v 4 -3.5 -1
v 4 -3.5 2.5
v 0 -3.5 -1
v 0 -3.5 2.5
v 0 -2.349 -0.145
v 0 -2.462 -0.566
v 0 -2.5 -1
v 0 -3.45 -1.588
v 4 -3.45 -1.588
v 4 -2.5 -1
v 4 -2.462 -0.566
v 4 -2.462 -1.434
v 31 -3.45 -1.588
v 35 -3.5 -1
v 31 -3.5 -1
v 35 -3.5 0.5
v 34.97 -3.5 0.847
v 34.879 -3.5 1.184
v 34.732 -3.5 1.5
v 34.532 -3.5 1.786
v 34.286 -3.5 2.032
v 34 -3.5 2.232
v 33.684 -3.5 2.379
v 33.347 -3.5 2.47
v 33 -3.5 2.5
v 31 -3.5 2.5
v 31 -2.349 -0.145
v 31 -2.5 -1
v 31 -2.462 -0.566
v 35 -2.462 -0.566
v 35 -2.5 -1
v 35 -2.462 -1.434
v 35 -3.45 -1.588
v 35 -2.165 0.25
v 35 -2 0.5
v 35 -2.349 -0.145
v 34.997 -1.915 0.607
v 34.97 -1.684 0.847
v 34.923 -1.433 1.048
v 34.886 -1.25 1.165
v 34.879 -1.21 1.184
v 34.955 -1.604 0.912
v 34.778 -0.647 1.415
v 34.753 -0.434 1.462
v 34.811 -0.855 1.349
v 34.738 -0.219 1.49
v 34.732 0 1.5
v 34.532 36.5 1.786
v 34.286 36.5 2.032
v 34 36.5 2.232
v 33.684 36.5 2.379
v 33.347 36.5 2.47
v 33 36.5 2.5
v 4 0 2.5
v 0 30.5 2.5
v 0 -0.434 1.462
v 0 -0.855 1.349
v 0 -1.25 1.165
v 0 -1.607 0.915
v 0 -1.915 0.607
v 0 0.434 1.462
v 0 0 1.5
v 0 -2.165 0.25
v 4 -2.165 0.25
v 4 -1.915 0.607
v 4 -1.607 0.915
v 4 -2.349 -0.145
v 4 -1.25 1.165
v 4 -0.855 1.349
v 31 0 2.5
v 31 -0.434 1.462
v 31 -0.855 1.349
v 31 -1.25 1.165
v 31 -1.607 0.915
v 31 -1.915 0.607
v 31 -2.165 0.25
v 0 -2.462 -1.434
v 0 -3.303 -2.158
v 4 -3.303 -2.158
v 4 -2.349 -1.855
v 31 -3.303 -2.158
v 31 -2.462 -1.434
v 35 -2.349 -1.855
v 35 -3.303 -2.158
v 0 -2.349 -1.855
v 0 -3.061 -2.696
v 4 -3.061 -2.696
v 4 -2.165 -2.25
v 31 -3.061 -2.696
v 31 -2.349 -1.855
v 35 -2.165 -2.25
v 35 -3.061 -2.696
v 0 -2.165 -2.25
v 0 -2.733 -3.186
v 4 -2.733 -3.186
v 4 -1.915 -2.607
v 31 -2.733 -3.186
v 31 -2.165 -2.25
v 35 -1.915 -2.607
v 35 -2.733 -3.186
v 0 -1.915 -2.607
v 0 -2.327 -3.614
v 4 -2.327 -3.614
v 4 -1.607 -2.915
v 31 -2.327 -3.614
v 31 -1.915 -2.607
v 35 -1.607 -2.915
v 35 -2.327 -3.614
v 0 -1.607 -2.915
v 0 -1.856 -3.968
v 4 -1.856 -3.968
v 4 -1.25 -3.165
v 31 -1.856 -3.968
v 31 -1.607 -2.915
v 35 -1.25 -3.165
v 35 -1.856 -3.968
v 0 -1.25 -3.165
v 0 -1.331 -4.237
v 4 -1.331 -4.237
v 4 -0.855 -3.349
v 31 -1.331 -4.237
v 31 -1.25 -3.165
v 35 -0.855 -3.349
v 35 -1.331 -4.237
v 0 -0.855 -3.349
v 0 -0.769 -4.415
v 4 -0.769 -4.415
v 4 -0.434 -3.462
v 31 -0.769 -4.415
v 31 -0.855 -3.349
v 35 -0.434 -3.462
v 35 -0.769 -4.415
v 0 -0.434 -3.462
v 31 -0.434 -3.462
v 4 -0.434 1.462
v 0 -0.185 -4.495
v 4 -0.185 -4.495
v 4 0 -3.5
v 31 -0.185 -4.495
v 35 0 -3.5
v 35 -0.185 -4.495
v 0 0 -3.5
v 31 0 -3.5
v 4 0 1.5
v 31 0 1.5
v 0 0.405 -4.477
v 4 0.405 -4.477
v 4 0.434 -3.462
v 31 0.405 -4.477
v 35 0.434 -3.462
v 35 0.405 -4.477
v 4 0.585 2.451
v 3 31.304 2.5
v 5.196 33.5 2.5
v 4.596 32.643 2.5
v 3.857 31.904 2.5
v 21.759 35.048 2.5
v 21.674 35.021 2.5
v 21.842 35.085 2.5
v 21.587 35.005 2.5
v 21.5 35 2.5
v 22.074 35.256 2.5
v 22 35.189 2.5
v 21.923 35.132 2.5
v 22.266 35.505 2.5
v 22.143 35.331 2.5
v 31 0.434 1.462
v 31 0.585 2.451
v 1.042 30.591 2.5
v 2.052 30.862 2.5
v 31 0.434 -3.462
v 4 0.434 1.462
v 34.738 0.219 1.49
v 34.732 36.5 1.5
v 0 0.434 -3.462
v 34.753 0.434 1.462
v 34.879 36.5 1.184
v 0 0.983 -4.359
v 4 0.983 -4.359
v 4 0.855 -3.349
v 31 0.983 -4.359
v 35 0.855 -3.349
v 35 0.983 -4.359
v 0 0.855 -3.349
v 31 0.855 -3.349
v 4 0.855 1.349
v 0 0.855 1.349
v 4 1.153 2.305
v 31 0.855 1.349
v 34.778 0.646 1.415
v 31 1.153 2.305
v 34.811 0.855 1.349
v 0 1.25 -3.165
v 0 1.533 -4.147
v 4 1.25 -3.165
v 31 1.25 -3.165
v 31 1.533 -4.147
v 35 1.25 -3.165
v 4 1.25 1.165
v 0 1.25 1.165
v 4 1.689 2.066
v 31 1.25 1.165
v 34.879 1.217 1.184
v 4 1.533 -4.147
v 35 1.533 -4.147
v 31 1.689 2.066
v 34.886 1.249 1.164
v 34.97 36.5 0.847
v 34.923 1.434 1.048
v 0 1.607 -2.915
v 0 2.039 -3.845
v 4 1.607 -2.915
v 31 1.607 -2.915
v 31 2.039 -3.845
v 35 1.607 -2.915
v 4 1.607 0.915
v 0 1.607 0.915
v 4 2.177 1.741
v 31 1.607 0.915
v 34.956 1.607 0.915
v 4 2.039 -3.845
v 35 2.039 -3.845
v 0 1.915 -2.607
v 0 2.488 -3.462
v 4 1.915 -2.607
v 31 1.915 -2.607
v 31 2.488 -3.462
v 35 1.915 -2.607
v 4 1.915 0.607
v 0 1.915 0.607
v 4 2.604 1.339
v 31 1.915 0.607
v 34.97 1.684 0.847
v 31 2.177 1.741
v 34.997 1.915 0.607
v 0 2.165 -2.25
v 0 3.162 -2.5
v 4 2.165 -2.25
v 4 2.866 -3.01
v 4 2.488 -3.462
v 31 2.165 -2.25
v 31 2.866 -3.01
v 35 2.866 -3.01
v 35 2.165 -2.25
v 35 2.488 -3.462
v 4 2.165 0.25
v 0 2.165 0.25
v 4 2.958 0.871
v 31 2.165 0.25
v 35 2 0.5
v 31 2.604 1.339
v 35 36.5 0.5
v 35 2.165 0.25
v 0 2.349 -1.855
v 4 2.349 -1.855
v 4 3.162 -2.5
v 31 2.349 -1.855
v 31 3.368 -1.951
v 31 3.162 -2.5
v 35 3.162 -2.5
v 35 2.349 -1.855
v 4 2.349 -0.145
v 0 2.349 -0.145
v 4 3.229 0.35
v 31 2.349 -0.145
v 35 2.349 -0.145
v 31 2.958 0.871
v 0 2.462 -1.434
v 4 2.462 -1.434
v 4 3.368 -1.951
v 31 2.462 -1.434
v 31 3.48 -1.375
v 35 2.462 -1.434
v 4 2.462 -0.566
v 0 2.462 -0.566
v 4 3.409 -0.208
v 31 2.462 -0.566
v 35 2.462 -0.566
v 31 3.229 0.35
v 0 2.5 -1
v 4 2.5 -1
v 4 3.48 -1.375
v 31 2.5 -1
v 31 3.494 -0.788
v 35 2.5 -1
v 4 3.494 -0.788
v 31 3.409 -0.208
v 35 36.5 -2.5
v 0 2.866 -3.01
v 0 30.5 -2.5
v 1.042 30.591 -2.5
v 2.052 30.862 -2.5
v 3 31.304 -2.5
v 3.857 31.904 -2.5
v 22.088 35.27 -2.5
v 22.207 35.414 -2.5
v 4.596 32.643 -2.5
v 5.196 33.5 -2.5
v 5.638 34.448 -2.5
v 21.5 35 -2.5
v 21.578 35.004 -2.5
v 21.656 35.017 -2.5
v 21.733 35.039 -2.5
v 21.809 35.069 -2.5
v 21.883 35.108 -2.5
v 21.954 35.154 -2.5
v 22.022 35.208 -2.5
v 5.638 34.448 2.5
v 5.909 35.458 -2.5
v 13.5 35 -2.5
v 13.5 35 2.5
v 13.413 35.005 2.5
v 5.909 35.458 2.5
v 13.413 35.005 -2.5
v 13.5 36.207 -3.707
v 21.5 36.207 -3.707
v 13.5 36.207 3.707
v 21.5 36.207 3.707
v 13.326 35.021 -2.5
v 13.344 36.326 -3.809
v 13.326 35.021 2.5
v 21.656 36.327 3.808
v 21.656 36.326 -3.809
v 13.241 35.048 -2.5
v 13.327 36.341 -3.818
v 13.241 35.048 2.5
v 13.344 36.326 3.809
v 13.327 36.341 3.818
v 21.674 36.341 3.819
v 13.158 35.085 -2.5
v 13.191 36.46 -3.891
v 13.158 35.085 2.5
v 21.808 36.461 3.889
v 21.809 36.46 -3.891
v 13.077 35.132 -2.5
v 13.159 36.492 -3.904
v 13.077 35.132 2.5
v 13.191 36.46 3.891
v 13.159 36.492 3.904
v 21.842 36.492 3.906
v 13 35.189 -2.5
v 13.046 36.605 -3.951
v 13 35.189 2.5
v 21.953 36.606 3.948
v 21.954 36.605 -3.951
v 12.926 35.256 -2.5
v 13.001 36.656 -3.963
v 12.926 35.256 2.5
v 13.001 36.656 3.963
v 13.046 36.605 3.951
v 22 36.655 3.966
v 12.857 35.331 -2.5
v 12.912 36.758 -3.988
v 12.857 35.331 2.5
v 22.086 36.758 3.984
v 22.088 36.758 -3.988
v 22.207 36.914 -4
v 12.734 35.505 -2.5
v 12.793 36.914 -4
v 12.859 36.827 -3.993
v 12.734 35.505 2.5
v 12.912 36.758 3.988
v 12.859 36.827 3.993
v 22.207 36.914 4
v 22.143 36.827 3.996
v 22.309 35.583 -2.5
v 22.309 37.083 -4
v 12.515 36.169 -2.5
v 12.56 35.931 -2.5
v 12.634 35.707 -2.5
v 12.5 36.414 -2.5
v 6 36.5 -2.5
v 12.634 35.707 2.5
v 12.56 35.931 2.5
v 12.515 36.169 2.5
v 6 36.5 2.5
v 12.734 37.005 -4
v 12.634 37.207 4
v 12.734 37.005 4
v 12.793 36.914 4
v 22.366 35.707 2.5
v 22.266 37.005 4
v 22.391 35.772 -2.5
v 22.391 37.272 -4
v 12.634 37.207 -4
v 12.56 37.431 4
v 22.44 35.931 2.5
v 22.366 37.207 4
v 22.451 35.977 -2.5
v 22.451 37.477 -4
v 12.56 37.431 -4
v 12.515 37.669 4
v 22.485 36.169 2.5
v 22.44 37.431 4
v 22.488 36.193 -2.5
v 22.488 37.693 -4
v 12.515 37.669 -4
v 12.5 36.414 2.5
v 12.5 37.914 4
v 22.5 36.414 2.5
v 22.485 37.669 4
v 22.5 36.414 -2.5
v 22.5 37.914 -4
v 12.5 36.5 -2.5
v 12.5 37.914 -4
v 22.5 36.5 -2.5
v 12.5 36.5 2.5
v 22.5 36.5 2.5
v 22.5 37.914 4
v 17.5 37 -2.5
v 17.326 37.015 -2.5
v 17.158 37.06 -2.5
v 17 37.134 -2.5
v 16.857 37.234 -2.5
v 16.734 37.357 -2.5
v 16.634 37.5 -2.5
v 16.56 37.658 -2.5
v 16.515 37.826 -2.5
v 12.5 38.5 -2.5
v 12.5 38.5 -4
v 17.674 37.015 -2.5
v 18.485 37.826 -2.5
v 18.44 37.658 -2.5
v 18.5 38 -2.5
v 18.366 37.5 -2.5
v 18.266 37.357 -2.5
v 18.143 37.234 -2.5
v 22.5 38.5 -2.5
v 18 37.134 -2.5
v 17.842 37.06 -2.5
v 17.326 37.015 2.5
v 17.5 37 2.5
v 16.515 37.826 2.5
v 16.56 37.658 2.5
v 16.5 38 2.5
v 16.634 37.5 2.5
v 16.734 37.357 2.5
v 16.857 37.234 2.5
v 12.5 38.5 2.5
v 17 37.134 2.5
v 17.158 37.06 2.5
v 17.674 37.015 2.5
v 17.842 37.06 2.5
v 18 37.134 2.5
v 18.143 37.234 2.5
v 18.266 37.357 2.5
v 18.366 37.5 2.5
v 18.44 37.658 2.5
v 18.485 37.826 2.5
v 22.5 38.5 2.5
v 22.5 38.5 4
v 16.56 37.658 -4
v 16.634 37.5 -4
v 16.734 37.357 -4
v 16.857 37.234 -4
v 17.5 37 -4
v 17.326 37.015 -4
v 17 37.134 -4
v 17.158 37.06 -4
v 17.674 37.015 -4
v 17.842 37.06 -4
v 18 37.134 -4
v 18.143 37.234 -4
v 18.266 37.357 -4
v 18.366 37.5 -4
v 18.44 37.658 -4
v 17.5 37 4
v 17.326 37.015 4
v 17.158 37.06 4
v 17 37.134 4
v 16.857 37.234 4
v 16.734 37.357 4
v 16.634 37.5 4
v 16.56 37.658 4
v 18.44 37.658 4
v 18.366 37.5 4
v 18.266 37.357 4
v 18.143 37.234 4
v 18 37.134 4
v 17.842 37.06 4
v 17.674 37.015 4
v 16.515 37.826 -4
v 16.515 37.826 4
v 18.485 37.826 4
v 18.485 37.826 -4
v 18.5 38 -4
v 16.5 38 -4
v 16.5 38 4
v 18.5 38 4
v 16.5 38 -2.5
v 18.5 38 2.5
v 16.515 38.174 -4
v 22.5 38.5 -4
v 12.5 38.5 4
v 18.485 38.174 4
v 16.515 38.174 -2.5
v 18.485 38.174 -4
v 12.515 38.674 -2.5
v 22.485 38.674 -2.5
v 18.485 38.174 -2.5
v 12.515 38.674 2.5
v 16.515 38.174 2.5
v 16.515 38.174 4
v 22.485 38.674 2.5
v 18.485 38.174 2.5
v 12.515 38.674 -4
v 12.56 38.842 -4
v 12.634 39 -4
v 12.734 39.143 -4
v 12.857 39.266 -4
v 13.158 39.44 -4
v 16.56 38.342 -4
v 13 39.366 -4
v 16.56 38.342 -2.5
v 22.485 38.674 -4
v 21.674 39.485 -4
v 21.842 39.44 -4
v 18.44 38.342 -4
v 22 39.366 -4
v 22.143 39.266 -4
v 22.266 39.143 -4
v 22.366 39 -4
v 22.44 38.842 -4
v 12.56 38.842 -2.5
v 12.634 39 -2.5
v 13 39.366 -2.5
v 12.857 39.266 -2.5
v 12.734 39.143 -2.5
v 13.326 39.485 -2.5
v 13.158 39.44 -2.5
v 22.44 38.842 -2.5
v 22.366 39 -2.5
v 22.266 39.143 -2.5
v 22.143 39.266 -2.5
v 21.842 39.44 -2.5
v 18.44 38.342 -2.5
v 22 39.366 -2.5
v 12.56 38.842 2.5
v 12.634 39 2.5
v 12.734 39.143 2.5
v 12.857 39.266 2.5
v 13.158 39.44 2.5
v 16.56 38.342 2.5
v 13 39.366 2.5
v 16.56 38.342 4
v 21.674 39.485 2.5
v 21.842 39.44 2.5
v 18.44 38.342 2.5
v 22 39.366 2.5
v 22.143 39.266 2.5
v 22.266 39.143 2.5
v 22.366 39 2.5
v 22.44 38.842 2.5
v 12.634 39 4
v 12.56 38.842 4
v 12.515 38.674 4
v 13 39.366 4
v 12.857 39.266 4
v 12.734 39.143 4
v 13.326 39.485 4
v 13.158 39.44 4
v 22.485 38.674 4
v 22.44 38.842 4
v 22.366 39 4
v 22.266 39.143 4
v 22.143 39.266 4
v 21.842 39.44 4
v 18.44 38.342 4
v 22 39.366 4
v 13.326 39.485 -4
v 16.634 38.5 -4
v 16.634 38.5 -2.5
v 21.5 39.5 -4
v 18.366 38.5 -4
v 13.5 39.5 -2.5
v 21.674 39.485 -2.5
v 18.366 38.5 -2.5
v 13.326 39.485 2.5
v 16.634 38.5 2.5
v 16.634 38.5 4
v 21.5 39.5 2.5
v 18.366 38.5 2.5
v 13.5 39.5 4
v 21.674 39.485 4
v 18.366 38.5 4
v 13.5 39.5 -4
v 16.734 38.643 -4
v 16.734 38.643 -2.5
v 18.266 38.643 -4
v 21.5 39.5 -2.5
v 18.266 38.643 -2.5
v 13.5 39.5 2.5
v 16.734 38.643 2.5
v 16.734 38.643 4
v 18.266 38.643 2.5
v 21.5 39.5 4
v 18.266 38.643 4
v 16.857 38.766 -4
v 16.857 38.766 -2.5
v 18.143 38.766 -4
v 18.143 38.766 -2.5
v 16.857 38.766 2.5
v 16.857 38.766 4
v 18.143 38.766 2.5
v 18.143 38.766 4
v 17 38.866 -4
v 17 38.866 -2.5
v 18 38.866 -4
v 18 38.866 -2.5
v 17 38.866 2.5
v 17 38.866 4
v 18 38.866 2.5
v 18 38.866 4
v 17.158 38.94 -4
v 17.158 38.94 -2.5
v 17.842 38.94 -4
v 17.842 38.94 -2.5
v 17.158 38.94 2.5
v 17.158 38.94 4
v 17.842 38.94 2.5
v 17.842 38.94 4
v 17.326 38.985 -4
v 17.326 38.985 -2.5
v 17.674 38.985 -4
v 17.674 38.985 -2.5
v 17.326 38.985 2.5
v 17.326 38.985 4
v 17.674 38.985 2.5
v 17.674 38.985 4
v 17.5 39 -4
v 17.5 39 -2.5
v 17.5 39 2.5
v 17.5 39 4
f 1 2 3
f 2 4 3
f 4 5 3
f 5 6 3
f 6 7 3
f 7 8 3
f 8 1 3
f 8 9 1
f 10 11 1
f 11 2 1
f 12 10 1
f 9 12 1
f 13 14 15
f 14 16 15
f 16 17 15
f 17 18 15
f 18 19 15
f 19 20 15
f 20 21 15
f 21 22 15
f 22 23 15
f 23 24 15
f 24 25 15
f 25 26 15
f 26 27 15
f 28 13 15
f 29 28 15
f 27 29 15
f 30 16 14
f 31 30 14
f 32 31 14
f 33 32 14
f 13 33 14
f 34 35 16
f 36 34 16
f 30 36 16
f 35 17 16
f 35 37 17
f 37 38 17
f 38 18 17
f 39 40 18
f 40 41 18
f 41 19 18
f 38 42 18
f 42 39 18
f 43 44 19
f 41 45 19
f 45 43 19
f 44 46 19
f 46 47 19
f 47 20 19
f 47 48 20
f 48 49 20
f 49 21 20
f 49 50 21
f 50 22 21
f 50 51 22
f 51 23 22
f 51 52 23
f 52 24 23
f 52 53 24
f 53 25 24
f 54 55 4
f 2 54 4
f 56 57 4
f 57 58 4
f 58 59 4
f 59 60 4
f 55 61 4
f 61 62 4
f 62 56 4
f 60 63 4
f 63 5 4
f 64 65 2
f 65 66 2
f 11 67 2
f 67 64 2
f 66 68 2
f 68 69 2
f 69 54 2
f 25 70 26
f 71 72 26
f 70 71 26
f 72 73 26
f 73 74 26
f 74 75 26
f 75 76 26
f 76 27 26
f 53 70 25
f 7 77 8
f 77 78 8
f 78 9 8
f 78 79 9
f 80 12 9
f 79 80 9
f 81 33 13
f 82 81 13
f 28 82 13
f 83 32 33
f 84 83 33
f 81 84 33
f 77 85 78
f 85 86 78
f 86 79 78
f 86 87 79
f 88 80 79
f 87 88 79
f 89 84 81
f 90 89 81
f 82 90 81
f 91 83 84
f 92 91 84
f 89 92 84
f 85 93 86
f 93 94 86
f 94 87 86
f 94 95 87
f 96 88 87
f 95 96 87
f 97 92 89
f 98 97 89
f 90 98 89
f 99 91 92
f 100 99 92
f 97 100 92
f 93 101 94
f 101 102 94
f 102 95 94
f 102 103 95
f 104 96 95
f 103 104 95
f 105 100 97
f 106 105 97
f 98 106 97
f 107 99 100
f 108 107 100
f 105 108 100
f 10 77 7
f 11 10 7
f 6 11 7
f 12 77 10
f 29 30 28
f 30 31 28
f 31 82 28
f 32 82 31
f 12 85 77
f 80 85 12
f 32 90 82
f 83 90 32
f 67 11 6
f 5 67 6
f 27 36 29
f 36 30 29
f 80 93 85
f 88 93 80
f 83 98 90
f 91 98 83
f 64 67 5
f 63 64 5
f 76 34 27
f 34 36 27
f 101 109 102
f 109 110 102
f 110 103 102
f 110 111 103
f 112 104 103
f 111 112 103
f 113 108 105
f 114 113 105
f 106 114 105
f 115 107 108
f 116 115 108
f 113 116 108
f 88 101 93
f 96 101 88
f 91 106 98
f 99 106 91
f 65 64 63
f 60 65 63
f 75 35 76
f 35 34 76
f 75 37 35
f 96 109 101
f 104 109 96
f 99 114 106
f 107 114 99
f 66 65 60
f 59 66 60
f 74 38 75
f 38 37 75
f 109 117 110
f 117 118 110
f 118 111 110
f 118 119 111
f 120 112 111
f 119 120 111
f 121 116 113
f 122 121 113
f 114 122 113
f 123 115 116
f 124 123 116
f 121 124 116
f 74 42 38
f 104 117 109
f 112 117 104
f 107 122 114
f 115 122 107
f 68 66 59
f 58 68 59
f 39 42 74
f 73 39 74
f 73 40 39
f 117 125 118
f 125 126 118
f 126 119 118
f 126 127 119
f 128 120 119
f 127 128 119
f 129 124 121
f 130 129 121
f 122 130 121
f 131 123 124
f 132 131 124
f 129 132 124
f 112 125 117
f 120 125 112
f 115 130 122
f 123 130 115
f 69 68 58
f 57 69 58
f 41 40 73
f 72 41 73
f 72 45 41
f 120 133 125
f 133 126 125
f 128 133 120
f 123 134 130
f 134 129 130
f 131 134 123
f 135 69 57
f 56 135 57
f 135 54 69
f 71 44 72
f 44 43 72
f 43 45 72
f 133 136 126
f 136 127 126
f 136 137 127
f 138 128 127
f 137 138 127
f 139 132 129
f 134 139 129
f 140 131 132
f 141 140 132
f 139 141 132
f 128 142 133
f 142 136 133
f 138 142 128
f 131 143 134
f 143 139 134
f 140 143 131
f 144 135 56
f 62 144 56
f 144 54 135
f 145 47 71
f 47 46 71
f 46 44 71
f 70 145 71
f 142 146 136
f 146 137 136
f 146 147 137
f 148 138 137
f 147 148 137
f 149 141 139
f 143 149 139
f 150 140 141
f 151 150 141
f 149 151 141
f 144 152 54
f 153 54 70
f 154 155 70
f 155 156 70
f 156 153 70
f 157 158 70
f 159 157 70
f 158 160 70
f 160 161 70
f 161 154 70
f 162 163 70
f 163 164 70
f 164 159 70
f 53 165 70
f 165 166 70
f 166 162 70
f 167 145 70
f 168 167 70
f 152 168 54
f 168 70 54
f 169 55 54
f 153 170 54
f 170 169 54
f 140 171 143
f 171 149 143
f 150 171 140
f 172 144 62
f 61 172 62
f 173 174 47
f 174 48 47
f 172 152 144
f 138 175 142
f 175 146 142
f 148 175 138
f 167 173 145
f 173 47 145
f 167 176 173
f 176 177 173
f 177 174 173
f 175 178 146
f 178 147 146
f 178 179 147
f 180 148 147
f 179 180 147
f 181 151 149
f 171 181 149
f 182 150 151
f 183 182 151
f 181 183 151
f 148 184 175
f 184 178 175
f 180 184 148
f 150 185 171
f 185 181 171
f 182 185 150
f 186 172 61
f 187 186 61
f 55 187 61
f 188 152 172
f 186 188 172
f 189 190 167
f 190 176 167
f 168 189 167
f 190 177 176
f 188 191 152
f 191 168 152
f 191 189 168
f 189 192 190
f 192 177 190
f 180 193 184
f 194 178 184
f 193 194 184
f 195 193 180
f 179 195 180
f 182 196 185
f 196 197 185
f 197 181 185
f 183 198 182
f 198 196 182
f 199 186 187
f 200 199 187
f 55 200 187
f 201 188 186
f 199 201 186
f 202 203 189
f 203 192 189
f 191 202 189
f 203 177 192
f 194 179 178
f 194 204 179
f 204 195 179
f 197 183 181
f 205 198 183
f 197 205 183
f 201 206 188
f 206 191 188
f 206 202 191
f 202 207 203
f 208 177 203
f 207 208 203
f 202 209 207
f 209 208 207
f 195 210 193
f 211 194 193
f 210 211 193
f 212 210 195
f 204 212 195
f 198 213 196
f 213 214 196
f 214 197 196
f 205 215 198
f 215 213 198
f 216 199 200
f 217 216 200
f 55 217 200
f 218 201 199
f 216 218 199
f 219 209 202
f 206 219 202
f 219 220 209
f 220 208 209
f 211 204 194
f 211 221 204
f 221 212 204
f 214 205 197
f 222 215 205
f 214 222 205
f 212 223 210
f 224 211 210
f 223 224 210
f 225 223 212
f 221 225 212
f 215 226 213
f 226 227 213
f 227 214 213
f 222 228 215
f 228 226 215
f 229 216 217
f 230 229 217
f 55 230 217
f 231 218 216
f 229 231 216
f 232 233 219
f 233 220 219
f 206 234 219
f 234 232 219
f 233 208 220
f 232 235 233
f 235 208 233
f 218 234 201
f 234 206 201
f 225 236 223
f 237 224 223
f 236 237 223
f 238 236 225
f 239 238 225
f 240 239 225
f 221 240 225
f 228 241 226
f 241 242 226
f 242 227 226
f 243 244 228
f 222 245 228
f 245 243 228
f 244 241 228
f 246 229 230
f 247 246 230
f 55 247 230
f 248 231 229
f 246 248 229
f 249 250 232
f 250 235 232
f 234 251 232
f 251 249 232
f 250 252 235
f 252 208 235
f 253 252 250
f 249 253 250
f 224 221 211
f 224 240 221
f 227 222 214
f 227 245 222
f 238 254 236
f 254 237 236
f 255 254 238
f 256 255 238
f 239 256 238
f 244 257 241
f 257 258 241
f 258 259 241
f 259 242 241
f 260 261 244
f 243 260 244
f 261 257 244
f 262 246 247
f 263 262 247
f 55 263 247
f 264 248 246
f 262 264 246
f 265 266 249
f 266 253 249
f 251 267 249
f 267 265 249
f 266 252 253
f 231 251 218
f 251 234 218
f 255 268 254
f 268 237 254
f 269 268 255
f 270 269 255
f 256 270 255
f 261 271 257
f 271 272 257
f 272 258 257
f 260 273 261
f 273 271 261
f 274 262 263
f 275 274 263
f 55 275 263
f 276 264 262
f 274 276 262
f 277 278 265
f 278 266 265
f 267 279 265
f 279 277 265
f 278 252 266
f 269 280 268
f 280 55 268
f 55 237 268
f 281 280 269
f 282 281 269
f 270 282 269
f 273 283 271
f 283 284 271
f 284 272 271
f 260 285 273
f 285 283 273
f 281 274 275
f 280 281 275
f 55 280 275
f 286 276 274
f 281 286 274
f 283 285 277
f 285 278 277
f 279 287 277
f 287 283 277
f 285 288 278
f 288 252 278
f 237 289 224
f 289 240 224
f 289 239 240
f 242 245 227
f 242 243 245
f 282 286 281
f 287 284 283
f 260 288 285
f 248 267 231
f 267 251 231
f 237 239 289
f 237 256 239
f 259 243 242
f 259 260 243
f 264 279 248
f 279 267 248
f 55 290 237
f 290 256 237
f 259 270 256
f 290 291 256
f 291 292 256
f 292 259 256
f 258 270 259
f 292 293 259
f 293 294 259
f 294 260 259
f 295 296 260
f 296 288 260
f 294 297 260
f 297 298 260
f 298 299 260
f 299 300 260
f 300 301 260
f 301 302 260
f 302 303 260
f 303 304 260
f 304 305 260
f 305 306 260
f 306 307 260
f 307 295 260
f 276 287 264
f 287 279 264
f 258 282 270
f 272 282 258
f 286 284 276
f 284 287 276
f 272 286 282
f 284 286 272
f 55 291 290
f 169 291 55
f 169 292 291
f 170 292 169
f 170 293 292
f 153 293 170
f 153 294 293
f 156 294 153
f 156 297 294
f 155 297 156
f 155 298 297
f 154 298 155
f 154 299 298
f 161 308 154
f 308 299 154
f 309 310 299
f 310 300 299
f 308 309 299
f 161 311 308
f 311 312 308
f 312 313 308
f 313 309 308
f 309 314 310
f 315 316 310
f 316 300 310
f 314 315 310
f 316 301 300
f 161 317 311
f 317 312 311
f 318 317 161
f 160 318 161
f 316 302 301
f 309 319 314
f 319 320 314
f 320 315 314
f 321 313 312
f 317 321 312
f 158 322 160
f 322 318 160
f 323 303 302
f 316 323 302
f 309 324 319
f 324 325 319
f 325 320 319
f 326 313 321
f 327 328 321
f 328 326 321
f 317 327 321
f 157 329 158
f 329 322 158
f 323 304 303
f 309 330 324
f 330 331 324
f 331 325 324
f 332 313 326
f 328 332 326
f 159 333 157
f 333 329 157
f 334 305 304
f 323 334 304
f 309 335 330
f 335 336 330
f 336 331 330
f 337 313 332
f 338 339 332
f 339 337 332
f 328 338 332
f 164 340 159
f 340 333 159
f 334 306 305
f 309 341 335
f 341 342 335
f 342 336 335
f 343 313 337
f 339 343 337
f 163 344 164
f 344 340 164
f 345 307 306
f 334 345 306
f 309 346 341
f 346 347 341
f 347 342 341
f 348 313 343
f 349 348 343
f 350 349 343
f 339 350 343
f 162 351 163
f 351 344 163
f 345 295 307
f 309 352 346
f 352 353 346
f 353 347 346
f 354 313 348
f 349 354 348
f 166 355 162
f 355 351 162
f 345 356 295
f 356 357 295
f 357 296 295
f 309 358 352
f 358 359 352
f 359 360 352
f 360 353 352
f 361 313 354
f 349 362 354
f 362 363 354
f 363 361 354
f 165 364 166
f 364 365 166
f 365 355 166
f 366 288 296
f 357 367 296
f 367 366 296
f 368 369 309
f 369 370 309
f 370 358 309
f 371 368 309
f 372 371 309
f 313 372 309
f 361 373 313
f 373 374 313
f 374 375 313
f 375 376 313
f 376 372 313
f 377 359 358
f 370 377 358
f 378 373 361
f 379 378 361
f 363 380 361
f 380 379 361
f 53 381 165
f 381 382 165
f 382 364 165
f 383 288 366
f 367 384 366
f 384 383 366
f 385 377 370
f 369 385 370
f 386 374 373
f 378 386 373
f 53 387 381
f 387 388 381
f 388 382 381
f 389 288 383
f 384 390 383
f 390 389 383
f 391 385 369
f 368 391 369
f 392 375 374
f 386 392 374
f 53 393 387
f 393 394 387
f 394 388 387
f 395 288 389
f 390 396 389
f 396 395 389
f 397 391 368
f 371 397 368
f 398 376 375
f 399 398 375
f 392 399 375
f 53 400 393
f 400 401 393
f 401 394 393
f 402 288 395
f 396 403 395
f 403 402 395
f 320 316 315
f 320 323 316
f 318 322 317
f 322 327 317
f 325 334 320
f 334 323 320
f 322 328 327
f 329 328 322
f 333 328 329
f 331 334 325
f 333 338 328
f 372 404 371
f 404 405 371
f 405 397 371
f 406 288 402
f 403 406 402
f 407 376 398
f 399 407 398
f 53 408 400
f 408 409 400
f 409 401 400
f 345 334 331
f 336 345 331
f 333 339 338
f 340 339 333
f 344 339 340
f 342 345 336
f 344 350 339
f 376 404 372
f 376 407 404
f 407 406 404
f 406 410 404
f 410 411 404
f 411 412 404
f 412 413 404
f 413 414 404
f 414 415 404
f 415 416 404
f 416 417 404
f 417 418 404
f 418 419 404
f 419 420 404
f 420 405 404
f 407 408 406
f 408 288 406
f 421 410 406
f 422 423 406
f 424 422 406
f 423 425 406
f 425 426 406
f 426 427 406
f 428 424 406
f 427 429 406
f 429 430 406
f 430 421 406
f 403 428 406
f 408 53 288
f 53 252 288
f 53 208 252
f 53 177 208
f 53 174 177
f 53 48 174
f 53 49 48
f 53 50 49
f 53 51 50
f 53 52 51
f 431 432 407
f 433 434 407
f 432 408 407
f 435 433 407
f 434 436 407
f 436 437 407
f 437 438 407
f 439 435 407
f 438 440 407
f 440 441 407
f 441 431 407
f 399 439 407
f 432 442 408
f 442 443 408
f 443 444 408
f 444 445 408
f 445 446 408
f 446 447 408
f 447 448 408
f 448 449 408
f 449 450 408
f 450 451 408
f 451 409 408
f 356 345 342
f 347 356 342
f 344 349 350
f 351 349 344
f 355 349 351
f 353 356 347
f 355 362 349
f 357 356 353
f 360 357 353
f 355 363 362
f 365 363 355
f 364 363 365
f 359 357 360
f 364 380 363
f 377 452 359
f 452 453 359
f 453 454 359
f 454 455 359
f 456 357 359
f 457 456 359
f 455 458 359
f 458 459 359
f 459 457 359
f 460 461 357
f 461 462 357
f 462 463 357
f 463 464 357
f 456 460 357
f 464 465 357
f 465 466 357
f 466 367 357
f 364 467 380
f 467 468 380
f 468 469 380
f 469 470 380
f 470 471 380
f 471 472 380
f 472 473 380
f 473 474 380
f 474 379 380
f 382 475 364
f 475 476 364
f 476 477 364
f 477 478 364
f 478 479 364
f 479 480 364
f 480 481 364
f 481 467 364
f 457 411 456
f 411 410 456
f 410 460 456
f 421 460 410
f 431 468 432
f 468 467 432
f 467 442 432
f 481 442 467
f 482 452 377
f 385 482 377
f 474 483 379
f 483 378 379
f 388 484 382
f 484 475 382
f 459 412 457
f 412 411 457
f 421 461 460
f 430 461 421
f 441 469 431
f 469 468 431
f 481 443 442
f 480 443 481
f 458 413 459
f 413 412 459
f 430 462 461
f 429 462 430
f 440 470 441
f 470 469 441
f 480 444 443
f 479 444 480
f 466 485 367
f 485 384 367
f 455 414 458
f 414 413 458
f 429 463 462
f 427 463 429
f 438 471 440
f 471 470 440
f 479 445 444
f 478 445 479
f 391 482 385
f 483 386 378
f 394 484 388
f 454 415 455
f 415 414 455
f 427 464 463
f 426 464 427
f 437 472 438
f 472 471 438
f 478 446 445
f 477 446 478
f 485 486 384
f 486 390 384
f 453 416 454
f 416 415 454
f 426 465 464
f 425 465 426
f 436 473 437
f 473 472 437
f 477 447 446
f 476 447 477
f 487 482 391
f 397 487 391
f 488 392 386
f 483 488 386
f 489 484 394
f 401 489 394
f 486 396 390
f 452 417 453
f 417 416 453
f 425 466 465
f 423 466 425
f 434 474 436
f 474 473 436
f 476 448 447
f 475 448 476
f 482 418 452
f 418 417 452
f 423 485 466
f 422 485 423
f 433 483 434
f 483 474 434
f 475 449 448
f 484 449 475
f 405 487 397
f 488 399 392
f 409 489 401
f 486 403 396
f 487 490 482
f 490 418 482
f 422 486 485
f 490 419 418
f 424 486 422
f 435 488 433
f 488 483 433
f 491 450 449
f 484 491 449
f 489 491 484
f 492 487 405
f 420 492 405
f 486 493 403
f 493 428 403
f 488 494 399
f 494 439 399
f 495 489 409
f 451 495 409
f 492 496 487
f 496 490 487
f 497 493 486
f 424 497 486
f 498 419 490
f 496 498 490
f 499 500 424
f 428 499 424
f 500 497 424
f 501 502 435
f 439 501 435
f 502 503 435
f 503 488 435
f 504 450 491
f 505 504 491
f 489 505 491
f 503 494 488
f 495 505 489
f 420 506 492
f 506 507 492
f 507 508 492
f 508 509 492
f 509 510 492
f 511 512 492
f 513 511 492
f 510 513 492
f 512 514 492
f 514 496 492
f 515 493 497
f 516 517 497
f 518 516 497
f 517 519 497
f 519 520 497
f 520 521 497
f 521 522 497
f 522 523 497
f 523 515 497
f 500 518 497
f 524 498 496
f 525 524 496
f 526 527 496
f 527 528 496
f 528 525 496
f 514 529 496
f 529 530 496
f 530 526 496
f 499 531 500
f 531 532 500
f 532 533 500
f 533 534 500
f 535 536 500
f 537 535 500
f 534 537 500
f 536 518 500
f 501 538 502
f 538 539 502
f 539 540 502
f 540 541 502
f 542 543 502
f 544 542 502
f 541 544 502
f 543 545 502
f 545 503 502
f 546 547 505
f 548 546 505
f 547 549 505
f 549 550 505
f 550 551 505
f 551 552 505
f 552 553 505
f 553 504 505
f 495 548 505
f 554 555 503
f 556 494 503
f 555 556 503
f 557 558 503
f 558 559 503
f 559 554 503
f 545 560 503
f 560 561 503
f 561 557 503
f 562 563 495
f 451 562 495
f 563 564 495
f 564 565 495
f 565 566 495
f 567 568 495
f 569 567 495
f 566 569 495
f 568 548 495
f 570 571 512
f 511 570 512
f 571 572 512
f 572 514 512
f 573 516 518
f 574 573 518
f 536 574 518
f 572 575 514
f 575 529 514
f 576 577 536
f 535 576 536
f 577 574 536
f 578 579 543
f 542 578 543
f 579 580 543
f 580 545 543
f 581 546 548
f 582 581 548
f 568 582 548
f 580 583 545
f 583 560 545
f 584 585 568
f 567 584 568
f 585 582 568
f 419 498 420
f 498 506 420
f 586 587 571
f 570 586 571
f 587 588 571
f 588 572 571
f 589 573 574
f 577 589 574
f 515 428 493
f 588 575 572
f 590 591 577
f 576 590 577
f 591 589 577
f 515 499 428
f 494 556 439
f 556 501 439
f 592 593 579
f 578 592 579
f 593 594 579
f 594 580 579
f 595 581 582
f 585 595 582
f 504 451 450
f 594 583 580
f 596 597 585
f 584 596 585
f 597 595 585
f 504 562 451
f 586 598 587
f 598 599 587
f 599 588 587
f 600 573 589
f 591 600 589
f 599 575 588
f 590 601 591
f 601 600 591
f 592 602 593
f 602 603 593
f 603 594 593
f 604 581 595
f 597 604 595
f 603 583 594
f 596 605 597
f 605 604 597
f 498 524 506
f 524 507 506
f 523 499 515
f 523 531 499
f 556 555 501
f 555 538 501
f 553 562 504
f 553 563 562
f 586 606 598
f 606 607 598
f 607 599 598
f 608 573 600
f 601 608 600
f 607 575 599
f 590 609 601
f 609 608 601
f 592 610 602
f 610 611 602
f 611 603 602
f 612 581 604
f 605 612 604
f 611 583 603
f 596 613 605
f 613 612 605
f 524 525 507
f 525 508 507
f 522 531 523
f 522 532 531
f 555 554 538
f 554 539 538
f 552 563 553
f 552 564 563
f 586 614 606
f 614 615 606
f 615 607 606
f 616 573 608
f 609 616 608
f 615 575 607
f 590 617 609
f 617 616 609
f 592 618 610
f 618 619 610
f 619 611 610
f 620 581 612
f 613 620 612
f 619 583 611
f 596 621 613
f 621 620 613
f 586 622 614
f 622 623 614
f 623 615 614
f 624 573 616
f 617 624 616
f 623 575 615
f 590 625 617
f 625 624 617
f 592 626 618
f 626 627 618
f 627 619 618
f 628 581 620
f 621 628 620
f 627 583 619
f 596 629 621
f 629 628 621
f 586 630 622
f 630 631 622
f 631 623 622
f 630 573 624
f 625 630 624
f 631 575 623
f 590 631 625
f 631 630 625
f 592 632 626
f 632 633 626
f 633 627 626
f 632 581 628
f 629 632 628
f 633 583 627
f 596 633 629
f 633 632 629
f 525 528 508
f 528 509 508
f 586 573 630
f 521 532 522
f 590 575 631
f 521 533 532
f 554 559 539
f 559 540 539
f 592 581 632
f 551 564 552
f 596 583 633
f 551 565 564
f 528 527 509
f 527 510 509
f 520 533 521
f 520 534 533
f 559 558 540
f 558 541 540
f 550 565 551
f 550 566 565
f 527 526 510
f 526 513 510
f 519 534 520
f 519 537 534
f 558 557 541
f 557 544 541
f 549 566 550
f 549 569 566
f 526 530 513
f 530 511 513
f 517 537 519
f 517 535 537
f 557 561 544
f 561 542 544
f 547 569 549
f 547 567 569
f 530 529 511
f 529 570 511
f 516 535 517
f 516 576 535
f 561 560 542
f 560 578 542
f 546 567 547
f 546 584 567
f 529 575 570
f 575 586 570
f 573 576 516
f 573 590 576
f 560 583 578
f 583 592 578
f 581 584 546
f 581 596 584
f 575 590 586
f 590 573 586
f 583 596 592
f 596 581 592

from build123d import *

# Parameters (mm, degrees)
SKETCH1_W           = 35
SKETCH1_H           = 36.5
BOSS_EXTRUDE1_DEPTH = 2.5
SKETCH3_R           = 3.5
CUT_EXTRUDE1_DEPTH  = 35
SKETCH4_R           = 2.5
BOSS_EXTRUDE3_DEPTH = 4
SKETCH5_W           = 1.5
SKETCH5_H           = 3
BOSS_EXTRUDE4_DEPTH = 5
CUT_EXTRUDE2_REACH  = 55.456
SKETCH6_R           = 1
FILLET1_R           = 1
FILLET2_R           = 1
SKETCH7_R           = 6
CUT_EXTRUDE3_DEPTH  = 5
FILLET3_R           = 2


with BuildPart() as part:
    # Sketch1 → Boss-Extrude1 (new, symmetric)
    with BuildSketch(Plane.XY):
        with Locations((17.5, 18.25)):
            Rectangle(SKETCH1_W, SKETCH1_H)
    extrude(amount=BOSS_EXTRUDE1_DEPTH, both=True)

    # Sketch3 → Cut-Extrude1 (cut)
    with BuildSketch(Plane(origin=(35, 0, 0), x_dir=(0, 0, -1), z_dir=(1, 0, 0))):
        with Locations((1, 0)):
            Circle(SKETCH3_R)
    extrude(amount=-CUT_EXTRUDE1_DEPTH, mode=Mode.SUBTRACT)

    # Sketch4 → Boss-Extrude3 (add)
    # profile 1 of 2: a face of its own
    with BuildSketch(Plane(origin=(35, 0, 0), x_dir=(0, 0, -1), z_dir=(1, 0, 0))):
        with BuildLine():
            ThreePointArc((2.5, 3.16227766), (-0.870828693, 2.958039892), (-2.5, 0))
            ThreePointArc((-2.5, 0), (-1.474873734, -2.474873734), (1, -3.5))
            ThreePointArc((1, -3.5), (3.474873734, -2.474873734), (4.5, 0))
            ThreePointArc((4.5, 0), (3.958039892, 1.870828693), (2.5, 3.16227766))
        make_face()
        with Locations((1, 0)):
            Circle(SKETCH4_R, mode=Mode.SUBTRACT)
    # profile 2 of 2: a face of its own
    with BuildSketch(Plane(origin=(35, 0, 0), x_dir=(0, 0, -1), z_dir=(1, 0, 0))):
        with BuildLine():
            ThreePointArc((1, -3.5), (-1.474873734, -2.474873734), (-2.5, 0))
            Line((-2.5, 0), (-2.5, -3.5))
            Line((-2.5, -3.5), (1, -3.5))
        make_face()
    boss_extrude3 = extrude(amount=-BOSS_EXTRUDE3_DEPTH)

    # Mirror2: Boss-Extrude3 across plane
    add(boss_extrude3.mirror(Plane(origin=(17.5, 0, 0), x_dir=(0, 0, 1), z_dir=(1, 0, 0))))

    # Sketch5 → Boss-Extrude4 (add, symmetric)
    with BuildSketch(Plane(origin=(17.5, 0, 0), x_dir=(0, 0, -1), z_dir=(1, 0, 0))):
        with Locations((-3.25, 38)):
            Rectangle(SKETCH5_W, SKETCH5_H)
        Polygon((-4, 36.5), (-2.5, 35), (-2.5, 36.5), align=None)
        Polygon((2.5, 35), (2.5, 36.5), (4, 36.5), align=None)
        with Locations((3.25, 38)):
            Rectangle(SKETCH5_W, SKETCH5_H)
    extrude(amount=BOSS_EXTRUDE4_DEPTH, both=True)

    # Cut-Extrude2: up to this face of the body (flat: up to its plane)
    cut_extrude2_end = Plane(part.part.faces().sort_by_distance((17.5, 38, -4))[0])
    # Sketch6 → Cut-Extrude2 (cut, up to the picked face)
    with BuildSketch(Plane.XY.offset(4), mode=Mode.PRIVATE) as cut_extrude2_sk1:
        with Locations(Location((17.5, 38, 0), (0, 0, 270))):
            Circle(SKETCH6_R)
    cut_extrude2_tool1 = split(extrude(cut_extrude2_sk1.sketch, amount=-CUT_EXTRUDE2_REACH, mode=Mode.PRIVATE), bisect_by=cut_extrude2_end, keep=Keep.BOTH, mode=Mode.PRIVATE)
    add(cut_extrude2_tool1.solids().sort_by(Axis((17.5, 38, 4), (0, 0, -1)))[0], mode=Mode.SUBTRACT)

    # Fillet1
    fillet1_edges = [part.edges().sort_by_distance(p)[0] for p in [
        (12.5, 35.75, 3.25),
        (17.5, 36.5, 4),
        (22.5, 35.75, 3.25),
        (22.5, 35.75, -3.25),
        (17.5, 36.5, -4),
        (12.5, 35.75, -3.25),
    ]]
    fillet(fillet1_edges, radius=FILLET1_R)

    # Fillet2
    fillet2_edges = [part.edges().sort_by_distance(p)[0] for p in [
        (22.5, 39.5, 3.25),
        (12.5, 39.5, 3.25),
        (22.5, 39.5, -3.25),
        (12.5, 39.5, -3.25),
    ]]
    fillet(fillet2_edges, radius=FILLET2_R)

    # Sketch7 → Cut-Extrude3 (cut)
    with BuildSketch(Plane.XY.offset(2.5)):
        with Locations((0, 36.5)):
            Circle(SKETCH7_R)
    extrude(amount=-CUT_EXTRUDE3_DEPTH, mode=Mode.SUBTRACT)

    # Fillet3
    # the kernel refuses this fillet: 2 mm, written as the material it takes off along each edge
    with BuildSketch(Plane(origin=(35, -8.5, 2.5), x_dir=(-1, 0, 0), z_dir=(0, 1, 0))) as fillet3_piece_1:
        with BuildLine():
            CenterArc((FILLET3_R, -FILLET3_R), FILLET3_R, 90, 90)
            Line((0, -FILLET3_R), (0, 0))
            Line((0, 0), (FILLET3_R, 0))
        make_face()
    extrude(amount=50, mode=Mode.SUBTRACT)


solid = part.part
